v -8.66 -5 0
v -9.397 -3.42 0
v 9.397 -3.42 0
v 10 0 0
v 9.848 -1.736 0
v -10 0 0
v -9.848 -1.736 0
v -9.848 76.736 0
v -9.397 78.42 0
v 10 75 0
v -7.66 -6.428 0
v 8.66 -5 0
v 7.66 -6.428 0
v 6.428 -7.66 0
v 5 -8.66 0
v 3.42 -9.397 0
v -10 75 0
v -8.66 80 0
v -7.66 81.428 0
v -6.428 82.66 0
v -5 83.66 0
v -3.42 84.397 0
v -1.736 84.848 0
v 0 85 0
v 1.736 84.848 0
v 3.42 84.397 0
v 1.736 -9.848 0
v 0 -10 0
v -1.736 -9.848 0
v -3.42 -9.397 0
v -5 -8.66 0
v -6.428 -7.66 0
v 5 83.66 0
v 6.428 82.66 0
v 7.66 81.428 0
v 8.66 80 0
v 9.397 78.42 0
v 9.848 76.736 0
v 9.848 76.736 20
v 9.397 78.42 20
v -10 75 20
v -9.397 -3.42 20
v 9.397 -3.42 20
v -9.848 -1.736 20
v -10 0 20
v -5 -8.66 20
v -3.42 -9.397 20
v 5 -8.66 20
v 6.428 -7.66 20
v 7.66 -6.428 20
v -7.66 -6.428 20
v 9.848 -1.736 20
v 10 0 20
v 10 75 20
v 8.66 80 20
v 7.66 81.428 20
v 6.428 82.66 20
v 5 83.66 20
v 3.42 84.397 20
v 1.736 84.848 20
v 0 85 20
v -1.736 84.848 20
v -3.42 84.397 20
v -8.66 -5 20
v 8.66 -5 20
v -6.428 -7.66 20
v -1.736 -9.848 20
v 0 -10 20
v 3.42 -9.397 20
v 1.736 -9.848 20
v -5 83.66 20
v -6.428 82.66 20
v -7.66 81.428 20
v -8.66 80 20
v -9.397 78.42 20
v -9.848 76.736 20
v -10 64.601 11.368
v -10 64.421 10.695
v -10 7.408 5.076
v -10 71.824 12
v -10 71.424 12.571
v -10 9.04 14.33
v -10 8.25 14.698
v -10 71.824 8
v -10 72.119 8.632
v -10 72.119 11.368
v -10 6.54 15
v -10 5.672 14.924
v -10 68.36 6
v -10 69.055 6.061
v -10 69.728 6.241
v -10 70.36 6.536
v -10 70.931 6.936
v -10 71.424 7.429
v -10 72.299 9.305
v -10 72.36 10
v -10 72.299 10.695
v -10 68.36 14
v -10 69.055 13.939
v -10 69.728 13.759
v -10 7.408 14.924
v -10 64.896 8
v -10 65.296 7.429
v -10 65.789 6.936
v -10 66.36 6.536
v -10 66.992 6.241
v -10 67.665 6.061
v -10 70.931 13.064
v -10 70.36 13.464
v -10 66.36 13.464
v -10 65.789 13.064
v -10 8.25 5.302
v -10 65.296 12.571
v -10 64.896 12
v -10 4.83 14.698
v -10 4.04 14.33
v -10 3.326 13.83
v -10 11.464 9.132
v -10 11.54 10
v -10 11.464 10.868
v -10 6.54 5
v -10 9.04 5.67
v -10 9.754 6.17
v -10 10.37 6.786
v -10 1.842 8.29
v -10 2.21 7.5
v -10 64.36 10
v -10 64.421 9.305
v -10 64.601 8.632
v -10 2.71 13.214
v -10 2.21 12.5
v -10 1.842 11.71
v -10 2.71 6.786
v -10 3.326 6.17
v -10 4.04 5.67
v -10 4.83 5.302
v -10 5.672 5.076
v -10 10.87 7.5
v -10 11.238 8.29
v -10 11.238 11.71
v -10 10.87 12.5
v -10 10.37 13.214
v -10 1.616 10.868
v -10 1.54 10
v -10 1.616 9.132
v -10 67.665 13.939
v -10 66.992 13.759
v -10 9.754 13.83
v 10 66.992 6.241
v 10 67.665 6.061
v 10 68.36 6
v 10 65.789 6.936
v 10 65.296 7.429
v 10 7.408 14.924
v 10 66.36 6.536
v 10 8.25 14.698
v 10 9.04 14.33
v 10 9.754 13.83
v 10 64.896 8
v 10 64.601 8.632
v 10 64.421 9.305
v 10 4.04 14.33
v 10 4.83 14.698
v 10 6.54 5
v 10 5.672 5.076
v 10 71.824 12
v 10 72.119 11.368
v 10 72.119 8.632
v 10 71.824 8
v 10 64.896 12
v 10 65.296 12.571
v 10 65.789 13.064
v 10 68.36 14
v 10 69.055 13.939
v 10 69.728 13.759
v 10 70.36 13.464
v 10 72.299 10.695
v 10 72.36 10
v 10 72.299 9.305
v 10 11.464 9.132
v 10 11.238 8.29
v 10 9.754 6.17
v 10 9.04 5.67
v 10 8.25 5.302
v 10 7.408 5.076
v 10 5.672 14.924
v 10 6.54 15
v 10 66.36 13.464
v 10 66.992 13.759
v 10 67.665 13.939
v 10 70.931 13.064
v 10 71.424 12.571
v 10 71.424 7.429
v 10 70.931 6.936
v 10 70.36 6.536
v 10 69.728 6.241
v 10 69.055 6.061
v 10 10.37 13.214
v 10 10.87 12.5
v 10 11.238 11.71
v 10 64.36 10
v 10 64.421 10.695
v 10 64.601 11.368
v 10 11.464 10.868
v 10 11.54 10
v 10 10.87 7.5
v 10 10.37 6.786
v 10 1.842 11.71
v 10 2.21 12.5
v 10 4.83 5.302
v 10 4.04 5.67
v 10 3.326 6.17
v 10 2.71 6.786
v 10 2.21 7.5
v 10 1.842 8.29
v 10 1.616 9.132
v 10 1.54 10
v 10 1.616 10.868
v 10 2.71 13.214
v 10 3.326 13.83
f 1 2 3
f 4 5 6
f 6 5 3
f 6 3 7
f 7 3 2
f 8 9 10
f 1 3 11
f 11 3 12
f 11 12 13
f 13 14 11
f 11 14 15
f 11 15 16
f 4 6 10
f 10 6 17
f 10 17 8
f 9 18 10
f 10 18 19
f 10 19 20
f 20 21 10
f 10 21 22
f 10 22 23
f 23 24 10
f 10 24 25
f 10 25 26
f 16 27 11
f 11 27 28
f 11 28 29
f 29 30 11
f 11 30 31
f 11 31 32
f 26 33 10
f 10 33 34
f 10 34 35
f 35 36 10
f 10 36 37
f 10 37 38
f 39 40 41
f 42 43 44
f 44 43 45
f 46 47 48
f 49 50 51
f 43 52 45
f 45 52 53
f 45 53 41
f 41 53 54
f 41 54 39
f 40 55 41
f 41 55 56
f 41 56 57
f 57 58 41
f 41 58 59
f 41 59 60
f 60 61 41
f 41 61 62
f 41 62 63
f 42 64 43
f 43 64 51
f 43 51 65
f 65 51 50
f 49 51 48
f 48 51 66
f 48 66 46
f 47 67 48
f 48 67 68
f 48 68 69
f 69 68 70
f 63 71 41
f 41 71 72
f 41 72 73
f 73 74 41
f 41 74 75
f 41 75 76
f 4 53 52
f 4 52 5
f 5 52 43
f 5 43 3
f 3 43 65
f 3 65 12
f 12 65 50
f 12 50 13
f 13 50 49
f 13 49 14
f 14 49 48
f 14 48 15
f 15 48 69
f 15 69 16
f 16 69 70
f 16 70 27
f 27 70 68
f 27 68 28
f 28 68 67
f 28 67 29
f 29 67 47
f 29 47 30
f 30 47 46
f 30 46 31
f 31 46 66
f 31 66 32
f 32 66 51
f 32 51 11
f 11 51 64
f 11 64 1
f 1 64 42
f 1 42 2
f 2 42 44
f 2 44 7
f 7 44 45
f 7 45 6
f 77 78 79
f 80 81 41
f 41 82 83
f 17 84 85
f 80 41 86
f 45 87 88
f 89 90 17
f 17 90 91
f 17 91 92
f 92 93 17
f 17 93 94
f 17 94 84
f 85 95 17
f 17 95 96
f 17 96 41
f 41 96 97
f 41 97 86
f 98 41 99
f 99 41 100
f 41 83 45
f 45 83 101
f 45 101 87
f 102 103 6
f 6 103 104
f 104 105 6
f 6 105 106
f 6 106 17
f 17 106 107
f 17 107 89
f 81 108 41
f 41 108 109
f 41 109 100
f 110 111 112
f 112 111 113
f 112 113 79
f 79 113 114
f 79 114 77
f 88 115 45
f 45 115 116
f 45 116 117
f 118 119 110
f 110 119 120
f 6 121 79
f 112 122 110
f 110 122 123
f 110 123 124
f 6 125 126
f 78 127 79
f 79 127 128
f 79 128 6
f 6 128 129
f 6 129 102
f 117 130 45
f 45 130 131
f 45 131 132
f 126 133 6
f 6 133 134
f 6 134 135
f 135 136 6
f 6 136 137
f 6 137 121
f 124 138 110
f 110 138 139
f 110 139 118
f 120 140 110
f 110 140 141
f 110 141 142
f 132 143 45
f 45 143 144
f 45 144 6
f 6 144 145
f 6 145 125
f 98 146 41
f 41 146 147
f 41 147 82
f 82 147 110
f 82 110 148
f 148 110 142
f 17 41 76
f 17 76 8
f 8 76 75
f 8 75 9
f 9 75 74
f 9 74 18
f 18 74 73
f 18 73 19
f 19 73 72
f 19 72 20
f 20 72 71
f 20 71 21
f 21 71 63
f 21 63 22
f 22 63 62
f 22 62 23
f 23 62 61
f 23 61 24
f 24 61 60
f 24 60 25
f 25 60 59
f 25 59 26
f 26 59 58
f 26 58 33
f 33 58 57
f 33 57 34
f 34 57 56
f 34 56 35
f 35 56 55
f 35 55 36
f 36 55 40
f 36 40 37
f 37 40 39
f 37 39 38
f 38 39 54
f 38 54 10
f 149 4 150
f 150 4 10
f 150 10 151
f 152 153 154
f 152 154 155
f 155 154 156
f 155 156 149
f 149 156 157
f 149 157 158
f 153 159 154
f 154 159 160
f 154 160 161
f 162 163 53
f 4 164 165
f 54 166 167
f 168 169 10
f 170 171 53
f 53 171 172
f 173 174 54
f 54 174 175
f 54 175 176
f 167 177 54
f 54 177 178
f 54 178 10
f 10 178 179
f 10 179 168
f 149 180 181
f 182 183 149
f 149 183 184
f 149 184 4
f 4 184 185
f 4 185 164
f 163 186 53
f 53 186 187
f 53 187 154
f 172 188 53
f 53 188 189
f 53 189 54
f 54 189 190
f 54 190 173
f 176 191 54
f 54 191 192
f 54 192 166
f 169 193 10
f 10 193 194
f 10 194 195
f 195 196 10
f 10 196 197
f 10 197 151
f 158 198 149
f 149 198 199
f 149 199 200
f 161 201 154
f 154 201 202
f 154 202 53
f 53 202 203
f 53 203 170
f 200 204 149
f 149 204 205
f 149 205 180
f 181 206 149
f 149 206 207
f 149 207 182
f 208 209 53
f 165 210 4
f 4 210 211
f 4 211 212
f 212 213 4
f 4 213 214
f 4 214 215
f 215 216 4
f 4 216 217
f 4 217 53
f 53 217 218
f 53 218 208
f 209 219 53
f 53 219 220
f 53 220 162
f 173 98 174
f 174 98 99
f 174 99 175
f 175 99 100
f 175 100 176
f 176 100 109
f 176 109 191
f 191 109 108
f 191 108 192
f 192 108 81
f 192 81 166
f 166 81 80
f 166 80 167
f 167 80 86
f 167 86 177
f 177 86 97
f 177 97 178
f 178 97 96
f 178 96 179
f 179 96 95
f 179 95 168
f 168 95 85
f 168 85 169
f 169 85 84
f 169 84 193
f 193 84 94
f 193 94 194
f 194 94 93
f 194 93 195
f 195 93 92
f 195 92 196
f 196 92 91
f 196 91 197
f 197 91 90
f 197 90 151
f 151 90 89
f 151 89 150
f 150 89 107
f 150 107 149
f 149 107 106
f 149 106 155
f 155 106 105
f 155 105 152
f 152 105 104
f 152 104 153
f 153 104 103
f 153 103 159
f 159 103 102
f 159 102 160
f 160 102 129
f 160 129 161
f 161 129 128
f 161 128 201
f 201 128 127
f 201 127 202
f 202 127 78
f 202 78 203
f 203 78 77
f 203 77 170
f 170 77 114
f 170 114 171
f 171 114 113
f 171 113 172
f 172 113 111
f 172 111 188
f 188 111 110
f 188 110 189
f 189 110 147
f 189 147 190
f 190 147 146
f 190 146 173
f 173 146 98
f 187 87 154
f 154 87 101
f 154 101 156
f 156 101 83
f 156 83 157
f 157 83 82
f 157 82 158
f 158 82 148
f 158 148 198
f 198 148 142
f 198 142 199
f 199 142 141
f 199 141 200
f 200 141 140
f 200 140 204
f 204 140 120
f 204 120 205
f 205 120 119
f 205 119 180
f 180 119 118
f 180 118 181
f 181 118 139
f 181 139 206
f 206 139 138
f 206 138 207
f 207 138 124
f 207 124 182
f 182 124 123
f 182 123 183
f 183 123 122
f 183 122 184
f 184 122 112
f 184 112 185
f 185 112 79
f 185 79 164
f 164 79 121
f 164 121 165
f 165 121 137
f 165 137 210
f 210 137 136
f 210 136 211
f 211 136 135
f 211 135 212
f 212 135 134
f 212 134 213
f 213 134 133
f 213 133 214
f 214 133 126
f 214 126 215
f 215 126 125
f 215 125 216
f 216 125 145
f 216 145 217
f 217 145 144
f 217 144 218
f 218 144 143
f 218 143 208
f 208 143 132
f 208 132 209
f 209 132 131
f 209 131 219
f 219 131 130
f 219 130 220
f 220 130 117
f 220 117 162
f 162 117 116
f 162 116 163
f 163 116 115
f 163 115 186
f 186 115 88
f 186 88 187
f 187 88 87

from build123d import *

# Parameters (mm, degrees)
SKETCH2_R           = 5
BOSS_EXTRUDE1_DEPTH = 20
SKETCH4_R           = 4
CUT_EXTRUDE1_DEPTH  = 28
SKETCH5_R           = 5
CUT_EXTRUDE2_DEPTH  = 30
BOSS_EXTRUDE2_START = -20
SKETCH12_R          = 5
BOSS_EXTRUDE2_DEPTH = 20
SKETCH13_R          = 5
CUT_EXTRUDE3_DEPTH  = 20


with BuildPart() as part:
    # Sketch2 → Boss-Extrude1 (new body)
    with BuildSketch(Plane.XY):
        with BuildLine():
            Line((-10, 0), (-10, 75))
            ThreePointArc((-10, 75), (0, 85), (10, 75))
            Line((10, 75), (10, 0))
            ThreePointArc((10, 0), (0, -10), (-10, 0))
        make_face()
        Circle(SKETCH2_R, mode=Mode.SUBTRACT)
    extrude(amount=BOSS_EXTRUDE1_DEPTH)

    # Sketch4 → Cut-Extrude1 (cut)
    with BuildSketch(Plane(origin=(10, 0, 0), x_dir=(0, 0, -1), z_dir=(1, 0, 0))):
        with Locations((-10, 68.36)):
            Circle(SKETCH4_R)
    extrude(amount=-CUT_EXTRUDE1_DEPTH, mode=Mode.SUBTRACT)

    # Sketch5 → Cut-Extrude2 (cut)
    with BuildSketch(Plane(origin=(10, 0, 0), x_dir=(0, 0, -1), z_dir=(1, 0, 0))):
        with Locations((-10, 6.54)):
            Circle(SKETCH5_R)
    extrude(amount=-CUT_EXTRUDE2_DEPTH, mode=Mode.SUBTRACT)

    # Sketch12 → Boss-Extrude2 (add)
    with BuildSketch(Plane.XY.offset(20).offset(BOSS_EXTRUDE2_START)):
        Circle(SKETCH12_R)
    extrude(amount=BOSS_EXTRUDE2_DEPTH)

    # Sketch13 → Cut-Extrude3 (cut)
    with BuildSketch(Plane(origin=(10, 0, 0), x_dir=(0, 0, -1), z_dir=(1, 0, 0))):
        with Locations((-10, 6.54)):
            Circle(SKETCH13_R)
    extrude(amount=-CUT_EXTRUDE3_DEPTH, mode=Mode.SUBTRACT)


solid = part.part
